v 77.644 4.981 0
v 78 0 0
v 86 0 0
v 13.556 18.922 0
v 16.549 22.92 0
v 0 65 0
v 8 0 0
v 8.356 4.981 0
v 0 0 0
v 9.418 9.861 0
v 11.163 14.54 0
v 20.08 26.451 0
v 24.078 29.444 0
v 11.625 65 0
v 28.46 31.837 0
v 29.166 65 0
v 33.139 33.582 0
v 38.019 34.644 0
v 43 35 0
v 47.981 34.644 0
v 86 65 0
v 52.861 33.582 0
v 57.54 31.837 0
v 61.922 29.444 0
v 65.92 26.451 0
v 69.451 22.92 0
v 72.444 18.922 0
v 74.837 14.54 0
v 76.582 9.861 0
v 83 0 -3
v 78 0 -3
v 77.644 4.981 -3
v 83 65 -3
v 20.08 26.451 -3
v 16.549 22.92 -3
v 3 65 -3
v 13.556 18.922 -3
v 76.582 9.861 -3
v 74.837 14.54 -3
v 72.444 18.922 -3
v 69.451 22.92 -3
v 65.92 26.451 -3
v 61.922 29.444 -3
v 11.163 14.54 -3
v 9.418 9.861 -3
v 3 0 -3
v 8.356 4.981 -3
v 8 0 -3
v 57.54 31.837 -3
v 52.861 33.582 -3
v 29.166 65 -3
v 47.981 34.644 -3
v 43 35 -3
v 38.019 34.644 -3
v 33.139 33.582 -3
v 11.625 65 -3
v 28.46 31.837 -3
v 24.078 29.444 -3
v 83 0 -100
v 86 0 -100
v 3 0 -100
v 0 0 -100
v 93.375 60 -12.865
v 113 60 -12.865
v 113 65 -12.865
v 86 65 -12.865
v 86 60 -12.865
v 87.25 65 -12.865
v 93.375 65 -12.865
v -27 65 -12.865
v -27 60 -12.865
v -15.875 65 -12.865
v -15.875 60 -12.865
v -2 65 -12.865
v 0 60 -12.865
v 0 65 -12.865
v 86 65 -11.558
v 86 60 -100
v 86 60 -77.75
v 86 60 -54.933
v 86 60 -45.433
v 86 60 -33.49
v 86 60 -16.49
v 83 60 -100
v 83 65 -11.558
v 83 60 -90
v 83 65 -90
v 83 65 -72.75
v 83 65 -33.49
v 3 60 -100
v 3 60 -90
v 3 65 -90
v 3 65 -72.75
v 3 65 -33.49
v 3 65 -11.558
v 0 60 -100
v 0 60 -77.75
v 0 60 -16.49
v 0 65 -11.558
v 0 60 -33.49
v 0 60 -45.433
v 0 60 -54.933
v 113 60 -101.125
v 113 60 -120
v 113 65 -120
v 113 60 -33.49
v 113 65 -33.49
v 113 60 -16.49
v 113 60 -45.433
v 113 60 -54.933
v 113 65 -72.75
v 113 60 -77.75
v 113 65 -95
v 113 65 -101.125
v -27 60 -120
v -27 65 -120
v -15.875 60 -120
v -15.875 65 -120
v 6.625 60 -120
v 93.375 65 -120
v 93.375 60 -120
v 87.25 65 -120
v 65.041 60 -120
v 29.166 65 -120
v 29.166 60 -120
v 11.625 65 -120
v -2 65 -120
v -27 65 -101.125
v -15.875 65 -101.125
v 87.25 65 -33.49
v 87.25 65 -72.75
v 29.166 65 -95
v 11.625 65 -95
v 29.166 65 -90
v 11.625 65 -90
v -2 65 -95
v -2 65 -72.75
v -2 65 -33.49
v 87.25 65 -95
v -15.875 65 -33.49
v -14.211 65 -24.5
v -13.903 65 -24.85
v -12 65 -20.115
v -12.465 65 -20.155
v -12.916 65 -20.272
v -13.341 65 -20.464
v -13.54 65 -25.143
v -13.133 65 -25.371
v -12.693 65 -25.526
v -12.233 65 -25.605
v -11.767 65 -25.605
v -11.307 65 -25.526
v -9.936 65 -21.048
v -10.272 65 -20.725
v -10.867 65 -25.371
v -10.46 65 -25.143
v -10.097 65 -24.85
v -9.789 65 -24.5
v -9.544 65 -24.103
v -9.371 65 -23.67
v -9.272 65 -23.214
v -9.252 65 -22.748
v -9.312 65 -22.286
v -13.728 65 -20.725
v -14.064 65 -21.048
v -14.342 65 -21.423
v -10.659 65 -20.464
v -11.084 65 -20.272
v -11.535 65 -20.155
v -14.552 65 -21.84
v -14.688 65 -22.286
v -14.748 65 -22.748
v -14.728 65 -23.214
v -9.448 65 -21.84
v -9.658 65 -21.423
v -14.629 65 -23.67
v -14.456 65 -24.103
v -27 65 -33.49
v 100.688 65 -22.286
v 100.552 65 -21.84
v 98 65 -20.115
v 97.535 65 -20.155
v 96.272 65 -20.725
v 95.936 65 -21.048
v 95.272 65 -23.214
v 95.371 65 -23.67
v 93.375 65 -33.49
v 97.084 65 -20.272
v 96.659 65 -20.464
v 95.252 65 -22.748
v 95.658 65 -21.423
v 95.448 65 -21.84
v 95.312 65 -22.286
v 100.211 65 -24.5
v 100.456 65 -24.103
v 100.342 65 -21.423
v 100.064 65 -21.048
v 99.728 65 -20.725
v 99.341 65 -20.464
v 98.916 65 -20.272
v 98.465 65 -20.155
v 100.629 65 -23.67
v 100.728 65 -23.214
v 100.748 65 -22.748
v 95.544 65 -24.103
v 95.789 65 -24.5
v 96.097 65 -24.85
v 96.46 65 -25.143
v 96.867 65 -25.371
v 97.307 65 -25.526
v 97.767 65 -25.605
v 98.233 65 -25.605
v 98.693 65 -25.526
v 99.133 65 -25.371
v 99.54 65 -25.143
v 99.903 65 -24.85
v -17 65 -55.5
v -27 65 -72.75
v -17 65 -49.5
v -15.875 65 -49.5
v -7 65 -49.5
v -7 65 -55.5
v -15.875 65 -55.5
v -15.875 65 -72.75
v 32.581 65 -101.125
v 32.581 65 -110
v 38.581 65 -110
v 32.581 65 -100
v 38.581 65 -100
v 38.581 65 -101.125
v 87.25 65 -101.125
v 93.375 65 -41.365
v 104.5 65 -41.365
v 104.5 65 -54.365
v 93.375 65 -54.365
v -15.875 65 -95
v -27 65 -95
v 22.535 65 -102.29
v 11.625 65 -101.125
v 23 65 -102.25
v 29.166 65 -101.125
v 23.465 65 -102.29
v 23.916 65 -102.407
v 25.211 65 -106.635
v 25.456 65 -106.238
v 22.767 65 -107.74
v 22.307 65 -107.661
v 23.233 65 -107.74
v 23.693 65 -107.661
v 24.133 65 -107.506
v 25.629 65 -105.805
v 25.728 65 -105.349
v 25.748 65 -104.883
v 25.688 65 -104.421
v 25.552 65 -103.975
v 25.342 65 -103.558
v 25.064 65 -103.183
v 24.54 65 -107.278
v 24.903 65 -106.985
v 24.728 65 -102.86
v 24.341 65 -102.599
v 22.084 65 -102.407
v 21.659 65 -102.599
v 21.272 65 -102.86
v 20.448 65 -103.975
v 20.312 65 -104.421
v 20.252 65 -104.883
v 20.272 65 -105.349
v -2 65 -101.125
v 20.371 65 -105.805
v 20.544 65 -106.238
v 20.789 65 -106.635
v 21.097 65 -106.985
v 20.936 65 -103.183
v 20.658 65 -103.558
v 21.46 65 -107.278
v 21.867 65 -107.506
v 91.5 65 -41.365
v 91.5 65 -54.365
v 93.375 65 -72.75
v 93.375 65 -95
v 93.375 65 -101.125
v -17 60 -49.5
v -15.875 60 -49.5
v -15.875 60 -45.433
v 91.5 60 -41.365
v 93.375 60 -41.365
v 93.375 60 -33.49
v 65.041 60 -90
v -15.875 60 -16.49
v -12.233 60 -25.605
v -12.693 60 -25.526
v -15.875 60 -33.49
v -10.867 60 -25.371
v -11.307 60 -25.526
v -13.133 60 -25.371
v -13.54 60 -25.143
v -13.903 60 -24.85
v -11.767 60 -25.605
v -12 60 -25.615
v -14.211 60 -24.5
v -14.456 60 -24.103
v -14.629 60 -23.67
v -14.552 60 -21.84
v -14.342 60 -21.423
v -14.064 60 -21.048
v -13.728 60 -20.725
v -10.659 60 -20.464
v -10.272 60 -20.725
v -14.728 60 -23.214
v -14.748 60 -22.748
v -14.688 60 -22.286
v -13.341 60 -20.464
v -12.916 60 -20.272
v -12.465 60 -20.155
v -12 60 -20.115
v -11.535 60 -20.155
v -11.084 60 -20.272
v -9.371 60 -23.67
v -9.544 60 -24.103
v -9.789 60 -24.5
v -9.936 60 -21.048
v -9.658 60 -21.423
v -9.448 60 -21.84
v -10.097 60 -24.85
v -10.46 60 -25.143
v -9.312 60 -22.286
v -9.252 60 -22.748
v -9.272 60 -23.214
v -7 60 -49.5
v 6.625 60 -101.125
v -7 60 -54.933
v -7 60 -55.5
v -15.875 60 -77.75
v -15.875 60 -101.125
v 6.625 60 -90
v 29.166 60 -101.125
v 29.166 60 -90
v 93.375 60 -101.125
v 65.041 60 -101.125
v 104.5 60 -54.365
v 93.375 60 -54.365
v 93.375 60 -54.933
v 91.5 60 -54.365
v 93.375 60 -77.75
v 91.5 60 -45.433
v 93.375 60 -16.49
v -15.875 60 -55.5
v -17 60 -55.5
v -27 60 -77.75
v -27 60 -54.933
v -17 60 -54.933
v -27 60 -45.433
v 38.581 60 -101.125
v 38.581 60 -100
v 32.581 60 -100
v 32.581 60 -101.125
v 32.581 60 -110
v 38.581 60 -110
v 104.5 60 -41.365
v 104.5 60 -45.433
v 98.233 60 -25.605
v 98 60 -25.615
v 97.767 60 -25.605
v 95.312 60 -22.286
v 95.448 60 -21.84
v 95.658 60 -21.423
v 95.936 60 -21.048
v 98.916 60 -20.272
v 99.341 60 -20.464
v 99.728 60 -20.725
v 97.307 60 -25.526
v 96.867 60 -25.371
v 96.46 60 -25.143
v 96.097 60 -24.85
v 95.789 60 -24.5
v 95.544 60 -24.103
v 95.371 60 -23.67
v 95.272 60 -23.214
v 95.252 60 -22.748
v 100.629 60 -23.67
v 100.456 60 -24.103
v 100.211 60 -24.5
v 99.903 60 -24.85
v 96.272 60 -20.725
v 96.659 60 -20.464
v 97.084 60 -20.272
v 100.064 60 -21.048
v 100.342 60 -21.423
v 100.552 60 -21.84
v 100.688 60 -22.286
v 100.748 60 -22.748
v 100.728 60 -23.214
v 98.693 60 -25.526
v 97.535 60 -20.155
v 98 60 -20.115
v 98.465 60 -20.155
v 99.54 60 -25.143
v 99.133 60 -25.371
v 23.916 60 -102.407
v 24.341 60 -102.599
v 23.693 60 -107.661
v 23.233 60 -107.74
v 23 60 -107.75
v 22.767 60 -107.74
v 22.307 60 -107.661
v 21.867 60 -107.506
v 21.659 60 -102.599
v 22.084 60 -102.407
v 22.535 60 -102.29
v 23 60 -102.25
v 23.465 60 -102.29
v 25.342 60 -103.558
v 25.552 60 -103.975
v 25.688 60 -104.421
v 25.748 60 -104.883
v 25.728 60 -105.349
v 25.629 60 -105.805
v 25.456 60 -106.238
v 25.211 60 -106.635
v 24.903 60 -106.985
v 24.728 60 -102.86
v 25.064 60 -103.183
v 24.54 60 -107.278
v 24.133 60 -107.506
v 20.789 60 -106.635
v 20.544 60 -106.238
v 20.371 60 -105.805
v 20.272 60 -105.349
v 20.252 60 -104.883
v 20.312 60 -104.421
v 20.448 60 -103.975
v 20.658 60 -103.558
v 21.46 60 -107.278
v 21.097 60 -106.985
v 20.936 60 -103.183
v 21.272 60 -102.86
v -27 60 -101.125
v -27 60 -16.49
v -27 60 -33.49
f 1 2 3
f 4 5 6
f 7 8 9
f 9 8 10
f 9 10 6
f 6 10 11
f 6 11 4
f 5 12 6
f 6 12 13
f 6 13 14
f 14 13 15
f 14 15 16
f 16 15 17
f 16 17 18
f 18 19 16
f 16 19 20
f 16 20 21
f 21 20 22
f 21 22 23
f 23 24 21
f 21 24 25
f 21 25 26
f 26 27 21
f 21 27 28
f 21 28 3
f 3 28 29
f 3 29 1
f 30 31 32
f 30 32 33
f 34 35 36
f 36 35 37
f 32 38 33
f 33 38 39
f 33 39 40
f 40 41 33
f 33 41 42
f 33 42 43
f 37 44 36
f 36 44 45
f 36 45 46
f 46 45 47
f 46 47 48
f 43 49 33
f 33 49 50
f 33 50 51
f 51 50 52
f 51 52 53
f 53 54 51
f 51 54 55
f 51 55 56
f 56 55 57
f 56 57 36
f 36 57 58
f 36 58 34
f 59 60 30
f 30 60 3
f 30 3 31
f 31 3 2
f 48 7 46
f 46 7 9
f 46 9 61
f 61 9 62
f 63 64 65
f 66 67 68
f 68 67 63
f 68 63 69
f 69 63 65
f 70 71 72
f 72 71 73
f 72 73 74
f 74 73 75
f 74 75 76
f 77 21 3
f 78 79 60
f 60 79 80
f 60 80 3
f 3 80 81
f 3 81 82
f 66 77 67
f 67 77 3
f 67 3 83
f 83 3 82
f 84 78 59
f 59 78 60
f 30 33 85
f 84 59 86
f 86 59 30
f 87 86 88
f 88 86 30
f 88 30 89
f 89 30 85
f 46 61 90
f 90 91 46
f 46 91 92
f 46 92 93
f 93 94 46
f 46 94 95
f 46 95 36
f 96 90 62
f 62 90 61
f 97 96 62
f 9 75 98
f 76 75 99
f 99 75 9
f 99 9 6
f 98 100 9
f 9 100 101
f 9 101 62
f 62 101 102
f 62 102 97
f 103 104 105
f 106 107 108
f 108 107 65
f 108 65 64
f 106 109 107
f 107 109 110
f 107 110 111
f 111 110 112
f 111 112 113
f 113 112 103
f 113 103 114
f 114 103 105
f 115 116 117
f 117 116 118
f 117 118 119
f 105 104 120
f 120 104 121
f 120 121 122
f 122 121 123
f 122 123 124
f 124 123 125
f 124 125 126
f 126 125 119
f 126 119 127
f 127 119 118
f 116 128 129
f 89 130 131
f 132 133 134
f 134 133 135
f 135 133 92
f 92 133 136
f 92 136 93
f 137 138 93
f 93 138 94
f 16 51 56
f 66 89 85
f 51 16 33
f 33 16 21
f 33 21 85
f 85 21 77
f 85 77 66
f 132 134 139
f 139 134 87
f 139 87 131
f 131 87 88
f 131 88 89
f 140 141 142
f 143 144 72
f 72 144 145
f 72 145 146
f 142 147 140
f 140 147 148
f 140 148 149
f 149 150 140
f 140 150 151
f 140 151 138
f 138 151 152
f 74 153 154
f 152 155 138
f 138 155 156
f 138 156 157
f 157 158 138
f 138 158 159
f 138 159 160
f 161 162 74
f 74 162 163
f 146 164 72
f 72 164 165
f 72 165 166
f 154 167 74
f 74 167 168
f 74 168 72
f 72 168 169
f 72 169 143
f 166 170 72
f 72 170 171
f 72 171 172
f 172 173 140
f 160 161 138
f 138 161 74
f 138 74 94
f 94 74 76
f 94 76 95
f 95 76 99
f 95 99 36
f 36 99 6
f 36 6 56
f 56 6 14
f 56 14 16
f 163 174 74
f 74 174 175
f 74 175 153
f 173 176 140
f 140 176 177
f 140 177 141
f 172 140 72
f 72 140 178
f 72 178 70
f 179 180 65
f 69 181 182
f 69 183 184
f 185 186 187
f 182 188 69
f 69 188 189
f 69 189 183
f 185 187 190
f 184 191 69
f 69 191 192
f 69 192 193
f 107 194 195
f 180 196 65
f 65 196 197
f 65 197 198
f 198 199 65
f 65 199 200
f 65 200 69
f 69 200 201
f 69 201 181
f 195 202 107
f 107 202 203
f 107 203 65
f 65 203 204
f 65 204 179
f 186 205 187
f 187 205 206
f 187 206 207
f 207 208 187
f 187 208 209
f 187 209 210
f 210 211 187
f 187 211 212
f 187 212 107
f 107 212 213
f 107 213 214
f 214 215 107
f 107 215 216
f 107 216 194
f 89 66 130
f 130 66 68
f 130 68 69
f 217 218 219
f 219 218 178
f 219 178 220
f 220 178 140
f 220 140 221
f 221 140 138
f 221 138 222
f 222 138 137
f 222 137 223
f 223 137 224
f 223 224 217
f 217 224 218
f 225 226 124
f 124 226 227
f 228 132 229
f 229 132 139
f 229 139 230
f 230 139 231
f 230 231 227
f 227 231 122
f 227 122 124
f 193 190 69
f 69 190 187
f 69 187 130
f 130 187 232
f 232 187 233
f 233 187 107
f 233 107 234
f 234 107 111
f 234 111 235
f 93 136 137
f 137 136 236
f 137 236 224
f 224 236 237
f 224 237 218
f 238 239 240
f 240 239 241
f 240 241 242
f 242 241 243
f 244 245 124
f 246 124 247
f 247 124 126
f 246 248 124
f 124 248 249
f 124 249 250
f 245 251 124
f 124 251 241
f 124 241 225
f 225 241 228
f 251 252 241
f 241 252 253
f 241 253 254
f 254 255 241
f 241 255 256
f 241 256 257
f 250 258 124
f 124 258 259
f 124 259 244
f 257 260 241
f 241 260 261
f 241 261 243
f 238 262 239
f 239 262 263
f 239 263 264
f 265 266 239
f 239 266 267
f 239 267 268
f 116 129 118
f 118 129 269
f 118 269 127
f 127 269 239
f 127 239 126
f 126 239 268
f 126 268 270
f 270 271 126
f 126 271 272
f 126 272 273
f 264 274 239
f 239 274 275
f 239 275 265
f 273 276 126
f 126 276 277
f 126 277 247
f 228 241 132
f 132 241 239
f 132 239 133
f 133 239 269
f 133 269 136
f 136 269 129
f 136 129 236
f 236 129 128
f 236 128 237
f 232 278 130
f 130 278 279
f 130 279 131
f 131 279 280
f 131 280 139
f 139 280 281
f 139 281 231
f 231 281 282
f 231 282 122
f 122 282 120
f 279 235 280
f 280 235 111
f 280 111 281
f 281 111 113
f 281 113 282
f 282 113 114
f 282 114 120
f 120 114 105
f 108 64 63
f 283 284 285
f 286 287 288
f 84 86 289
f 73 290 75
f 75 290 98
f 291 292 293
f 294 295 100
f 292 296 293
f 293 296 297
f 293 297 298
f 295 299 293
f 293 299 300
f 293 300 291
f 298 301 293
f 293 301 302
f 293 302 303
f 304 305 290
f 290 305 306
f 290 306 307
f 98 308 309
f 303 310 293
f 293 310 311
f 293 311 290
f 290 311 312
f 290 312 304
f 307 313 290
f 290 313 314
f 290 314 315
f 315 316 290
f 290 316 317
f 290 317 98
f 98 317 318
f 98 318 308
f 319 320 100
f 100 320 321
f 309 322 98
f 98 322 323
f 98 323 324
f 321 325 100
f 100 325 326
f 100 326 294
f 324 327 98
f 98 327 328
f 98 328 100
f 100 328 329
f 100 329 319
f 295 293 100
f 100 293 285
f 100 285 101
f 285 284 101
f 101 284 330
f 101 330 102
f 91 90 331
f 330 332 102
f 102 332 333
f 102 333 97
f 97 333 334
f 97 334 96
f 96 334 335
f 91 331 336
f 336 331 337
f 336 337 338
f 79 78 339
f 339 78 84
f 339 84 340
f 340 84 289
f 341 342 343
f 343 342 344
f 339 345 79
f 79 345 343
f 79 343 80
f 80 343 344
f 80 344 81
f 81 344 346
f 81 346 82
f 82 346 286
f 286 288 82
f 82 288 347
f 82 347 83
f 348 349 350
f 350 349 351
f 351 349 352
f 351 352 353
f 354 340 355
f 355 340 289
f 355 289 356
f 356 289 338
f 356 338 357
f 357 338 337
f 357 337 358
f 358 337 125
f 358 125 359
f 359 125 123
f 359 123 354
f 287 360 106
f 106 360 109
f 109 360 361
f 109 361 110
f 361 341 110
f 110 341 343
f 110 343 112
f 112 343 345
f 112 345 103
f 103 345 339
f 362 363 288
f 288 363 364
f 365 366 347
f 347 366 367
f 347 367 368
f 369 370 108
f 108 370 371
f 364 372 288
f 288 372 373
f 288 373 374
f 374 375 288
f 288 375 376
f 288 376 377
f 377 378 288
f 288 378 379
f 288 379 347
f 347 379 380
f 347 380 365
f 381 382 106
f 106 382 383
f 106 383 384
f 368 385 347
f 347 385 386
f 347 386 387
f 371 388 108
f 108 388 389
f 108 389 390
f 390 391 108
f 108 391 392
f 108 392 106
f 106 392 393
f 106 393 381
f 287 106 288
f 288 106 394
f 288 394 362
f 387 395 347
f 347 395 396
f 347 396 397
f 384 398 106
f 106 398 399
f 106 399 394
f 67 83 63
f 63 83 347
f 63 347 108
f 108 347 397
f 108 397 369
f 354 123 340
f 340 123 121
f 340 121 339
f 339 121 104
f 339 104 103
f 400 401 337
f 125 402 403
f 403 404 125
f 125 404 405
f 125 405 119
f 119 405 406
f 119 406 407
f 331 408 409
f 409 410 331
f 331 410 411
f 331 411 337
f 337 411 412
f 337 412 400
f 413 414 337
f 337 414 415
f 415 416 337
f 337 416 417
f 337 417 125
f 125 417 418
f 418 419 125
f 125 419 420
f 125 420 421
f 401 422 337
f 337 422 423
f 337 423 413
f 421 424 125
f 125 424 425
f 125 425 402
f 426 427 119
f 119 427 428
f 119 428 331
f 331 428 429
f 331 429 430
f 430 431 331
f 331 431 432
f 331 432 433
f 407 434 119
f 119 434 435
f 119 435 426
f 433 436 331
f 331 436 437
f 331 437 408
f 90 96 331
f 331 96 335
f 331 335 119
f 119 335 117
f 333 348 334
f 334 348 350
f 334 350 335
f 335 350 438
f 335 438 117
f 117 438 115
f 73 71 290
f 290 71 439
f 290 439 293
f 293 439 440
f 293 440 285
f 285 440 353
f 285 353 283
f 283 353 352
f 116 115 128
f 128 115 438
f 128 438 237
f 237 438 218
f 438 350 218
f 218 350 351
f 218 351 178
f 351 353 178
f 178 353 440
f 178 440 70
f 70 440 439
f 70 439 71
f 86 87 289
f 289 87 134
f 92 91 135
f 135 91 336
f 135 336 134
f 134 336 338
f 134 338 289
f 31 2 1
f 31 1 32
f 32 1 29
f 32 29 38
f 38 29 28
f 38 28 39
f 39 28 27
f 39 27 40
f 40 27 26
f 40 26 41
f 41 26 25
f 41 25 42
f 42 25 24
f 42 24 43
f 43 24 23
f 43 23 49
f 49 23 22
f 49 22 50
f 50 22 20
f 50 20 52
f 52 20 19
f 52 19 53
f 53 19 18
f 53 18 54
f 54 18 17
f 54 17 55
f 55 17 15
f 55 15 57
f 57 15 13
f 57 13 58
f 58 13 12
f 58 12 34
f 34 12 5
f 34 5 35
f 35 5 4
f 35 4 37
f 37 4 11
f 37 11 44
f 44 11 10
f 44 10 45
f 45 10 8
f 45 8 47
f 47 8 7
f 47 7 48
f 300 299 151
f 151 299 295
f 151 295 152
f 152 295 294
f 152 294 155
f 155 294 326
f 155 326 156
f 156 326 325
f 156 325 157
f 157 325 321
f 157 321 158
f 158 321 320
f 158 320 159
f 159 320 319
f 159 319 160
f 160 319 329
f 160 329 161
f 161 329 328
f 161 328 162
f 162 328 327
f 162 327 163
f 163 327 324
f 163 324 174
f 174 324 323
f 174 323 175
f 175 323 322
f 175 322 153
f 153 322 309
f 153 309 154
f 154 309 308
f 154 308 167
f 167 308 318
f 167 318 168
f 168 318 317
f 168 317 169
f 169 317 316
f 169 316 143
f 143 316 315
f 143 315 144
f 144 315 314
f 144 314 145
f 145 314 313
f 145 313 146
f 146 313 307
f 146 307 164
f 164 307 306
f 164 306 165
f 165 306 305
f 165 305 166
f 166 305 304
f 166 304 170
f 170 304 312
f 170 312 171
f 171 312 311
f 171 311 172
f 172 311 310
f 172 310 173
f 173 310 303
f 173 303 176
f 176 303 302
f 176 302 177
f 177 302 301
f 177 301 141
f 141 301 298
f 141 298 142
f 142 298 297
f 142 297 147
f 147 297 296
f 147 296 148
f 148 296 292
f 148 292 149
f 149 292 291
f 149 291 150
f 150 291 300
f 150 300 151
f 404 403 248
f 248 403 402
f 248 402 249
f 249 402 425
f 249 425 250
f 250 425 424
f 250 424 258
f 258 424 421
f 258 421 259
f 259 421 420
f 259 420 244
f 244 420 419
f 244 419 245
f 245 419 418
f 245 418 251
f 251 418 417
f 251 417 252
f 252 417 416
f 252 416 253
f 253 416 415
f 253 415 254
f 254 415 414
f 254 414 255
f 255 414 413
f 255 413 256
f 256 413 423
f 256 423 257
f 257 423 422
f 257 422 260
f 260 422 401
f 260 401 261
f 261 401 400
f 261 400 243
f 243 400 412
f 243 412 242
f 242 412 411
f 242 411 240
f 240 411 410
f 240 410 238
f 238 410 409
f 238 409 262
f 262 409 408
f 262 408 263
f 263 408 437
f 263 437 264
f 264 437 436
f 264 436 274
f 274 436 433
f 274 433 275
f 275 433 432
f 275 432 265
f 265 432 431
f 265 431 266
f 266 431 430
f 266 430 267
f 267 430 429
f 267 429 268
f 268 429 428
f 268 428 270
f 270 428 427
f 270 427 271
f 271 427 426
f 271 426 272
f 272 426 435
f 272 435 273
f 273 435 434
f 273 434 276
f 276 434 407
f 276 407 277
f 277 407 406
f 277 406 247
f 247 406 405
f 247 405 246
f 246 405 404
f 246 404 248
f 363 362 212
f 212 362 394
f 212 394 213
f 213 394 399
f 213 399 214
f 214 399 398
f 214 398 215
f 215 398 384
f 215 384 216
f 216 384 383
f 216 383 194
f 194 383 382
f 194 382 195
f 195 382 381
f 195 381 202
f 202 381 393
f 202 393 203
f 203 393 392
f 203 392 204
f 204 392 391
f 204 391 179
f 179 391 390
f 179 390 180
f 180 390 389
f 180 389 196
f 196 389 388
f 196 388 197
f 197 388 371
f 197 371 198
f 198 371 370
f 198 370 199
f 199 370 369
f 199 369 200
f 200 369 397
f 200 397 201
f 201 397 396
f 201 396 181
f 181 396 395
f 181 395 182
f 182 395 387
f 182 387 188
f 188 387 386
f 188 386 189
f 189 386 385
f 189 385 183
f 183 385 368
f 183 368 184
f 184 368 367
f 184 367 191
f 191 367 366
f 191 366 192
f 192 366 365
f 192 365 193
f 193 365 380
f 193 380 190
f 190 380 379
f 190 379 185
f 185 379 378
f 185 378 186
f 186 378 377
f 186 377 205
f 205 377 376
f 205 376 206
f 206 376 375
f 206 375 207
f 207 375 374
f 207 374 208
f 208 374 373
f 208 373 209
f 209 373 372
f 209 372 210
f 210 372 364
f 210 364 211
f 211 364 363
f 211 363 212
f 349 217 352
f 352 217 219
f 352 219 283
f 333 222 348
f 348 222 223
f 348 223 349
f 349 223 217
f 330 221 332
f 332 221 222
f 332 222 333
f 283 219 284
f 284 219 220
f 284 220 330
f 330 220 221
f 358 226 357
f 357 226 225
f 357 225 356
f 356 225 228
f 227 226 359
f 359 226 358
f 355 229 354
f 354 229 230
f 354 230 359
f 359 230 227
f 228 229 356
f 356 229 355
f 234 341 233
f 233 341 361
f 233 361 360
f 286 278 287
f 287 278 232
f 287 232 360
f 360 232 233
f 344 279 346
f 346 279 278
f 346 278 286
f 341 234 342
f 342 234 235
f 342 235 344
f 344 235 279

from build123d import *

# Parameters (mm, degrees)
BOSS_EXTRUDE1_DEPTH = 60
SKETCH2_W           = 30
SKETCH2_H           = 107.13499281
BOSS_EXTRUDE2_DEPTH = 5
SKETCH3_W           = 80
SKETCH3_H           = 30
BOSS_EXTRUDE3_DEPTH = 5
BOSS_EXTRUDE4_DEPTH = 5
CUT_EXTRUDE2_DEPTH  = 5
SKETCH7_R           = 2.75
CUT_EXTRUDE3_DEPTH  = 178.183520676
SKETCH8_W           = 10
SKETCH8_H           = 6
SKETCH8_W_2         = 6
SKETCH8_H_2         = 10
CUT_EXTRUDE4_DEPTH  = 178.183520676
SKETCH10_W          = 13
SKETCH10_H          = 13
CUT_EXTRUDE5_DEPTH  = 178.183520676


with BuildPart() as part:
    # Sketch1 → Boss-Extrude1 (new body)
    with BuildSketch(Plane(origin=(0, 0, 0), x_dir=(1, 0, 0), z_dir=(0, 1, 0))):
        Polygon((0, 0), (0, 100), (3, 100), (3, 3), (83, 3), (83, 100), (86, 100), (86, 0), align=None)
    extrude(amount=BOSS_EXTRUDE1_DEPTH)

    # Sketch2 → Boss-Extrude2 (add)
    with BuildSketch(Plane(origin=(0, 60, 0), x_dir=(1, 0, 0), z_dir=(0, 1, 0))):
        with Locations((98, 66.432503591)):
            Rectangle(SKETCH2_W, SKETCH2_H)
        with Locations((-12, 66.432503591)):
            Rectangle(SKETCH2_W, SKETCH2_H)
    extrude(amount=BOSS_EXTRUDE2_DEPTH)

    # Sketch3 → Boss-Extrude3 (add)
    with BuildSketch(Plane(origin=(0, 65, 0), x_dir=(1, 0, 0), z_dir=(0, 1, 0))):
        with Locations((43, 104.999999996)):
            Rectangle(SKETCH3_W, SKETCH3_H)
    extrude(amount=-BOSS_EXTRUDE3_DEPTH)

    # Sketch5 → Boss-Extrude4 (add)
    with BuildSketch(Plane(origin=(0, 60, 0), x_dir=(1, 0, 0), z_dir=(0, 1, 0))):
        Polygon((0, 12.865007186), (0, 0), (86, 0), (86, 12.865007186), (83, 12.865007186), (83, 3), (3, 3), (3, 12.865007186), align=None)
    extrude(amount=BOSS_EXTRUDE4_DEPTH)

    # Sketch6 → Cut-Extrude2 (cut)
    with BuildSketch(Plane.XY):
        with BuildLine():
            Line((8, 0), (78, 0))
            ThreePointArc((78, 0), (43, 35), (8, 0))
        make_face()
    extrude(amount=-CUT_EXTRUDE2_DEPTH, mode=Mode.SUBTRACT)

    # Sketch7 → Cut-Extrude3 (cut, through all)
    with BuildSketch(Plane(origin=(0, 65, 0), x_dir=(1, 0, 0), z_dir=(0, 1, 0))):
        with Locations(Location((-12, 22.865007186, 0), (0, 0, 270))):
            Circle(SKETCH7_R)
        with Locations(Location((23, 104.999999996, 0), (0, 0, 270))):
            Circle(SKETCH7_R)
        with Locations(Location((98, 22.865007186, 0), (0, 0, 270))):
            Circle(SKETCH7_R)
    extrude(amount=-CUT_EXTRUDE3_DEPTH, mode=Mode.SUBTRACT)

    # Sketch8 → Cut-Extrude4 (cut, through all)
    with BuildSketch(Plane(origin=(0, 65, 0), x_dir=(1, 0, 0), z_dir=(0, 1, 0))):
        with Locations((-12, 52.499999996)):
            Rectangle(SKETCH8_W, SKETCH8_H)
        with Locations((35.581142125, 104.999999996)):
            Rectangle(SKETCH8_W_2, SKETCH8_H_2)
    extrude(amount=-CUT_EXTRUDE4_DEPTH, mode=Mode.SUBTRACT)

    # Sketch10 → Cut-Extrude5 (cut, through all)
    with BuildSketch(Plane(origin=(0, 65, 0), x_dir=(1, 0, 0), z_dir=(0, 1, 0))):
        with Locations((98, 47.865007186)):
            Rectangle(SKETCH10_W, SKETCH10_H)
    extrude(amount=-CUT_EXTRUDE5_DEPTH, mode=Mode.SUBTRACT)


solid = part.part
